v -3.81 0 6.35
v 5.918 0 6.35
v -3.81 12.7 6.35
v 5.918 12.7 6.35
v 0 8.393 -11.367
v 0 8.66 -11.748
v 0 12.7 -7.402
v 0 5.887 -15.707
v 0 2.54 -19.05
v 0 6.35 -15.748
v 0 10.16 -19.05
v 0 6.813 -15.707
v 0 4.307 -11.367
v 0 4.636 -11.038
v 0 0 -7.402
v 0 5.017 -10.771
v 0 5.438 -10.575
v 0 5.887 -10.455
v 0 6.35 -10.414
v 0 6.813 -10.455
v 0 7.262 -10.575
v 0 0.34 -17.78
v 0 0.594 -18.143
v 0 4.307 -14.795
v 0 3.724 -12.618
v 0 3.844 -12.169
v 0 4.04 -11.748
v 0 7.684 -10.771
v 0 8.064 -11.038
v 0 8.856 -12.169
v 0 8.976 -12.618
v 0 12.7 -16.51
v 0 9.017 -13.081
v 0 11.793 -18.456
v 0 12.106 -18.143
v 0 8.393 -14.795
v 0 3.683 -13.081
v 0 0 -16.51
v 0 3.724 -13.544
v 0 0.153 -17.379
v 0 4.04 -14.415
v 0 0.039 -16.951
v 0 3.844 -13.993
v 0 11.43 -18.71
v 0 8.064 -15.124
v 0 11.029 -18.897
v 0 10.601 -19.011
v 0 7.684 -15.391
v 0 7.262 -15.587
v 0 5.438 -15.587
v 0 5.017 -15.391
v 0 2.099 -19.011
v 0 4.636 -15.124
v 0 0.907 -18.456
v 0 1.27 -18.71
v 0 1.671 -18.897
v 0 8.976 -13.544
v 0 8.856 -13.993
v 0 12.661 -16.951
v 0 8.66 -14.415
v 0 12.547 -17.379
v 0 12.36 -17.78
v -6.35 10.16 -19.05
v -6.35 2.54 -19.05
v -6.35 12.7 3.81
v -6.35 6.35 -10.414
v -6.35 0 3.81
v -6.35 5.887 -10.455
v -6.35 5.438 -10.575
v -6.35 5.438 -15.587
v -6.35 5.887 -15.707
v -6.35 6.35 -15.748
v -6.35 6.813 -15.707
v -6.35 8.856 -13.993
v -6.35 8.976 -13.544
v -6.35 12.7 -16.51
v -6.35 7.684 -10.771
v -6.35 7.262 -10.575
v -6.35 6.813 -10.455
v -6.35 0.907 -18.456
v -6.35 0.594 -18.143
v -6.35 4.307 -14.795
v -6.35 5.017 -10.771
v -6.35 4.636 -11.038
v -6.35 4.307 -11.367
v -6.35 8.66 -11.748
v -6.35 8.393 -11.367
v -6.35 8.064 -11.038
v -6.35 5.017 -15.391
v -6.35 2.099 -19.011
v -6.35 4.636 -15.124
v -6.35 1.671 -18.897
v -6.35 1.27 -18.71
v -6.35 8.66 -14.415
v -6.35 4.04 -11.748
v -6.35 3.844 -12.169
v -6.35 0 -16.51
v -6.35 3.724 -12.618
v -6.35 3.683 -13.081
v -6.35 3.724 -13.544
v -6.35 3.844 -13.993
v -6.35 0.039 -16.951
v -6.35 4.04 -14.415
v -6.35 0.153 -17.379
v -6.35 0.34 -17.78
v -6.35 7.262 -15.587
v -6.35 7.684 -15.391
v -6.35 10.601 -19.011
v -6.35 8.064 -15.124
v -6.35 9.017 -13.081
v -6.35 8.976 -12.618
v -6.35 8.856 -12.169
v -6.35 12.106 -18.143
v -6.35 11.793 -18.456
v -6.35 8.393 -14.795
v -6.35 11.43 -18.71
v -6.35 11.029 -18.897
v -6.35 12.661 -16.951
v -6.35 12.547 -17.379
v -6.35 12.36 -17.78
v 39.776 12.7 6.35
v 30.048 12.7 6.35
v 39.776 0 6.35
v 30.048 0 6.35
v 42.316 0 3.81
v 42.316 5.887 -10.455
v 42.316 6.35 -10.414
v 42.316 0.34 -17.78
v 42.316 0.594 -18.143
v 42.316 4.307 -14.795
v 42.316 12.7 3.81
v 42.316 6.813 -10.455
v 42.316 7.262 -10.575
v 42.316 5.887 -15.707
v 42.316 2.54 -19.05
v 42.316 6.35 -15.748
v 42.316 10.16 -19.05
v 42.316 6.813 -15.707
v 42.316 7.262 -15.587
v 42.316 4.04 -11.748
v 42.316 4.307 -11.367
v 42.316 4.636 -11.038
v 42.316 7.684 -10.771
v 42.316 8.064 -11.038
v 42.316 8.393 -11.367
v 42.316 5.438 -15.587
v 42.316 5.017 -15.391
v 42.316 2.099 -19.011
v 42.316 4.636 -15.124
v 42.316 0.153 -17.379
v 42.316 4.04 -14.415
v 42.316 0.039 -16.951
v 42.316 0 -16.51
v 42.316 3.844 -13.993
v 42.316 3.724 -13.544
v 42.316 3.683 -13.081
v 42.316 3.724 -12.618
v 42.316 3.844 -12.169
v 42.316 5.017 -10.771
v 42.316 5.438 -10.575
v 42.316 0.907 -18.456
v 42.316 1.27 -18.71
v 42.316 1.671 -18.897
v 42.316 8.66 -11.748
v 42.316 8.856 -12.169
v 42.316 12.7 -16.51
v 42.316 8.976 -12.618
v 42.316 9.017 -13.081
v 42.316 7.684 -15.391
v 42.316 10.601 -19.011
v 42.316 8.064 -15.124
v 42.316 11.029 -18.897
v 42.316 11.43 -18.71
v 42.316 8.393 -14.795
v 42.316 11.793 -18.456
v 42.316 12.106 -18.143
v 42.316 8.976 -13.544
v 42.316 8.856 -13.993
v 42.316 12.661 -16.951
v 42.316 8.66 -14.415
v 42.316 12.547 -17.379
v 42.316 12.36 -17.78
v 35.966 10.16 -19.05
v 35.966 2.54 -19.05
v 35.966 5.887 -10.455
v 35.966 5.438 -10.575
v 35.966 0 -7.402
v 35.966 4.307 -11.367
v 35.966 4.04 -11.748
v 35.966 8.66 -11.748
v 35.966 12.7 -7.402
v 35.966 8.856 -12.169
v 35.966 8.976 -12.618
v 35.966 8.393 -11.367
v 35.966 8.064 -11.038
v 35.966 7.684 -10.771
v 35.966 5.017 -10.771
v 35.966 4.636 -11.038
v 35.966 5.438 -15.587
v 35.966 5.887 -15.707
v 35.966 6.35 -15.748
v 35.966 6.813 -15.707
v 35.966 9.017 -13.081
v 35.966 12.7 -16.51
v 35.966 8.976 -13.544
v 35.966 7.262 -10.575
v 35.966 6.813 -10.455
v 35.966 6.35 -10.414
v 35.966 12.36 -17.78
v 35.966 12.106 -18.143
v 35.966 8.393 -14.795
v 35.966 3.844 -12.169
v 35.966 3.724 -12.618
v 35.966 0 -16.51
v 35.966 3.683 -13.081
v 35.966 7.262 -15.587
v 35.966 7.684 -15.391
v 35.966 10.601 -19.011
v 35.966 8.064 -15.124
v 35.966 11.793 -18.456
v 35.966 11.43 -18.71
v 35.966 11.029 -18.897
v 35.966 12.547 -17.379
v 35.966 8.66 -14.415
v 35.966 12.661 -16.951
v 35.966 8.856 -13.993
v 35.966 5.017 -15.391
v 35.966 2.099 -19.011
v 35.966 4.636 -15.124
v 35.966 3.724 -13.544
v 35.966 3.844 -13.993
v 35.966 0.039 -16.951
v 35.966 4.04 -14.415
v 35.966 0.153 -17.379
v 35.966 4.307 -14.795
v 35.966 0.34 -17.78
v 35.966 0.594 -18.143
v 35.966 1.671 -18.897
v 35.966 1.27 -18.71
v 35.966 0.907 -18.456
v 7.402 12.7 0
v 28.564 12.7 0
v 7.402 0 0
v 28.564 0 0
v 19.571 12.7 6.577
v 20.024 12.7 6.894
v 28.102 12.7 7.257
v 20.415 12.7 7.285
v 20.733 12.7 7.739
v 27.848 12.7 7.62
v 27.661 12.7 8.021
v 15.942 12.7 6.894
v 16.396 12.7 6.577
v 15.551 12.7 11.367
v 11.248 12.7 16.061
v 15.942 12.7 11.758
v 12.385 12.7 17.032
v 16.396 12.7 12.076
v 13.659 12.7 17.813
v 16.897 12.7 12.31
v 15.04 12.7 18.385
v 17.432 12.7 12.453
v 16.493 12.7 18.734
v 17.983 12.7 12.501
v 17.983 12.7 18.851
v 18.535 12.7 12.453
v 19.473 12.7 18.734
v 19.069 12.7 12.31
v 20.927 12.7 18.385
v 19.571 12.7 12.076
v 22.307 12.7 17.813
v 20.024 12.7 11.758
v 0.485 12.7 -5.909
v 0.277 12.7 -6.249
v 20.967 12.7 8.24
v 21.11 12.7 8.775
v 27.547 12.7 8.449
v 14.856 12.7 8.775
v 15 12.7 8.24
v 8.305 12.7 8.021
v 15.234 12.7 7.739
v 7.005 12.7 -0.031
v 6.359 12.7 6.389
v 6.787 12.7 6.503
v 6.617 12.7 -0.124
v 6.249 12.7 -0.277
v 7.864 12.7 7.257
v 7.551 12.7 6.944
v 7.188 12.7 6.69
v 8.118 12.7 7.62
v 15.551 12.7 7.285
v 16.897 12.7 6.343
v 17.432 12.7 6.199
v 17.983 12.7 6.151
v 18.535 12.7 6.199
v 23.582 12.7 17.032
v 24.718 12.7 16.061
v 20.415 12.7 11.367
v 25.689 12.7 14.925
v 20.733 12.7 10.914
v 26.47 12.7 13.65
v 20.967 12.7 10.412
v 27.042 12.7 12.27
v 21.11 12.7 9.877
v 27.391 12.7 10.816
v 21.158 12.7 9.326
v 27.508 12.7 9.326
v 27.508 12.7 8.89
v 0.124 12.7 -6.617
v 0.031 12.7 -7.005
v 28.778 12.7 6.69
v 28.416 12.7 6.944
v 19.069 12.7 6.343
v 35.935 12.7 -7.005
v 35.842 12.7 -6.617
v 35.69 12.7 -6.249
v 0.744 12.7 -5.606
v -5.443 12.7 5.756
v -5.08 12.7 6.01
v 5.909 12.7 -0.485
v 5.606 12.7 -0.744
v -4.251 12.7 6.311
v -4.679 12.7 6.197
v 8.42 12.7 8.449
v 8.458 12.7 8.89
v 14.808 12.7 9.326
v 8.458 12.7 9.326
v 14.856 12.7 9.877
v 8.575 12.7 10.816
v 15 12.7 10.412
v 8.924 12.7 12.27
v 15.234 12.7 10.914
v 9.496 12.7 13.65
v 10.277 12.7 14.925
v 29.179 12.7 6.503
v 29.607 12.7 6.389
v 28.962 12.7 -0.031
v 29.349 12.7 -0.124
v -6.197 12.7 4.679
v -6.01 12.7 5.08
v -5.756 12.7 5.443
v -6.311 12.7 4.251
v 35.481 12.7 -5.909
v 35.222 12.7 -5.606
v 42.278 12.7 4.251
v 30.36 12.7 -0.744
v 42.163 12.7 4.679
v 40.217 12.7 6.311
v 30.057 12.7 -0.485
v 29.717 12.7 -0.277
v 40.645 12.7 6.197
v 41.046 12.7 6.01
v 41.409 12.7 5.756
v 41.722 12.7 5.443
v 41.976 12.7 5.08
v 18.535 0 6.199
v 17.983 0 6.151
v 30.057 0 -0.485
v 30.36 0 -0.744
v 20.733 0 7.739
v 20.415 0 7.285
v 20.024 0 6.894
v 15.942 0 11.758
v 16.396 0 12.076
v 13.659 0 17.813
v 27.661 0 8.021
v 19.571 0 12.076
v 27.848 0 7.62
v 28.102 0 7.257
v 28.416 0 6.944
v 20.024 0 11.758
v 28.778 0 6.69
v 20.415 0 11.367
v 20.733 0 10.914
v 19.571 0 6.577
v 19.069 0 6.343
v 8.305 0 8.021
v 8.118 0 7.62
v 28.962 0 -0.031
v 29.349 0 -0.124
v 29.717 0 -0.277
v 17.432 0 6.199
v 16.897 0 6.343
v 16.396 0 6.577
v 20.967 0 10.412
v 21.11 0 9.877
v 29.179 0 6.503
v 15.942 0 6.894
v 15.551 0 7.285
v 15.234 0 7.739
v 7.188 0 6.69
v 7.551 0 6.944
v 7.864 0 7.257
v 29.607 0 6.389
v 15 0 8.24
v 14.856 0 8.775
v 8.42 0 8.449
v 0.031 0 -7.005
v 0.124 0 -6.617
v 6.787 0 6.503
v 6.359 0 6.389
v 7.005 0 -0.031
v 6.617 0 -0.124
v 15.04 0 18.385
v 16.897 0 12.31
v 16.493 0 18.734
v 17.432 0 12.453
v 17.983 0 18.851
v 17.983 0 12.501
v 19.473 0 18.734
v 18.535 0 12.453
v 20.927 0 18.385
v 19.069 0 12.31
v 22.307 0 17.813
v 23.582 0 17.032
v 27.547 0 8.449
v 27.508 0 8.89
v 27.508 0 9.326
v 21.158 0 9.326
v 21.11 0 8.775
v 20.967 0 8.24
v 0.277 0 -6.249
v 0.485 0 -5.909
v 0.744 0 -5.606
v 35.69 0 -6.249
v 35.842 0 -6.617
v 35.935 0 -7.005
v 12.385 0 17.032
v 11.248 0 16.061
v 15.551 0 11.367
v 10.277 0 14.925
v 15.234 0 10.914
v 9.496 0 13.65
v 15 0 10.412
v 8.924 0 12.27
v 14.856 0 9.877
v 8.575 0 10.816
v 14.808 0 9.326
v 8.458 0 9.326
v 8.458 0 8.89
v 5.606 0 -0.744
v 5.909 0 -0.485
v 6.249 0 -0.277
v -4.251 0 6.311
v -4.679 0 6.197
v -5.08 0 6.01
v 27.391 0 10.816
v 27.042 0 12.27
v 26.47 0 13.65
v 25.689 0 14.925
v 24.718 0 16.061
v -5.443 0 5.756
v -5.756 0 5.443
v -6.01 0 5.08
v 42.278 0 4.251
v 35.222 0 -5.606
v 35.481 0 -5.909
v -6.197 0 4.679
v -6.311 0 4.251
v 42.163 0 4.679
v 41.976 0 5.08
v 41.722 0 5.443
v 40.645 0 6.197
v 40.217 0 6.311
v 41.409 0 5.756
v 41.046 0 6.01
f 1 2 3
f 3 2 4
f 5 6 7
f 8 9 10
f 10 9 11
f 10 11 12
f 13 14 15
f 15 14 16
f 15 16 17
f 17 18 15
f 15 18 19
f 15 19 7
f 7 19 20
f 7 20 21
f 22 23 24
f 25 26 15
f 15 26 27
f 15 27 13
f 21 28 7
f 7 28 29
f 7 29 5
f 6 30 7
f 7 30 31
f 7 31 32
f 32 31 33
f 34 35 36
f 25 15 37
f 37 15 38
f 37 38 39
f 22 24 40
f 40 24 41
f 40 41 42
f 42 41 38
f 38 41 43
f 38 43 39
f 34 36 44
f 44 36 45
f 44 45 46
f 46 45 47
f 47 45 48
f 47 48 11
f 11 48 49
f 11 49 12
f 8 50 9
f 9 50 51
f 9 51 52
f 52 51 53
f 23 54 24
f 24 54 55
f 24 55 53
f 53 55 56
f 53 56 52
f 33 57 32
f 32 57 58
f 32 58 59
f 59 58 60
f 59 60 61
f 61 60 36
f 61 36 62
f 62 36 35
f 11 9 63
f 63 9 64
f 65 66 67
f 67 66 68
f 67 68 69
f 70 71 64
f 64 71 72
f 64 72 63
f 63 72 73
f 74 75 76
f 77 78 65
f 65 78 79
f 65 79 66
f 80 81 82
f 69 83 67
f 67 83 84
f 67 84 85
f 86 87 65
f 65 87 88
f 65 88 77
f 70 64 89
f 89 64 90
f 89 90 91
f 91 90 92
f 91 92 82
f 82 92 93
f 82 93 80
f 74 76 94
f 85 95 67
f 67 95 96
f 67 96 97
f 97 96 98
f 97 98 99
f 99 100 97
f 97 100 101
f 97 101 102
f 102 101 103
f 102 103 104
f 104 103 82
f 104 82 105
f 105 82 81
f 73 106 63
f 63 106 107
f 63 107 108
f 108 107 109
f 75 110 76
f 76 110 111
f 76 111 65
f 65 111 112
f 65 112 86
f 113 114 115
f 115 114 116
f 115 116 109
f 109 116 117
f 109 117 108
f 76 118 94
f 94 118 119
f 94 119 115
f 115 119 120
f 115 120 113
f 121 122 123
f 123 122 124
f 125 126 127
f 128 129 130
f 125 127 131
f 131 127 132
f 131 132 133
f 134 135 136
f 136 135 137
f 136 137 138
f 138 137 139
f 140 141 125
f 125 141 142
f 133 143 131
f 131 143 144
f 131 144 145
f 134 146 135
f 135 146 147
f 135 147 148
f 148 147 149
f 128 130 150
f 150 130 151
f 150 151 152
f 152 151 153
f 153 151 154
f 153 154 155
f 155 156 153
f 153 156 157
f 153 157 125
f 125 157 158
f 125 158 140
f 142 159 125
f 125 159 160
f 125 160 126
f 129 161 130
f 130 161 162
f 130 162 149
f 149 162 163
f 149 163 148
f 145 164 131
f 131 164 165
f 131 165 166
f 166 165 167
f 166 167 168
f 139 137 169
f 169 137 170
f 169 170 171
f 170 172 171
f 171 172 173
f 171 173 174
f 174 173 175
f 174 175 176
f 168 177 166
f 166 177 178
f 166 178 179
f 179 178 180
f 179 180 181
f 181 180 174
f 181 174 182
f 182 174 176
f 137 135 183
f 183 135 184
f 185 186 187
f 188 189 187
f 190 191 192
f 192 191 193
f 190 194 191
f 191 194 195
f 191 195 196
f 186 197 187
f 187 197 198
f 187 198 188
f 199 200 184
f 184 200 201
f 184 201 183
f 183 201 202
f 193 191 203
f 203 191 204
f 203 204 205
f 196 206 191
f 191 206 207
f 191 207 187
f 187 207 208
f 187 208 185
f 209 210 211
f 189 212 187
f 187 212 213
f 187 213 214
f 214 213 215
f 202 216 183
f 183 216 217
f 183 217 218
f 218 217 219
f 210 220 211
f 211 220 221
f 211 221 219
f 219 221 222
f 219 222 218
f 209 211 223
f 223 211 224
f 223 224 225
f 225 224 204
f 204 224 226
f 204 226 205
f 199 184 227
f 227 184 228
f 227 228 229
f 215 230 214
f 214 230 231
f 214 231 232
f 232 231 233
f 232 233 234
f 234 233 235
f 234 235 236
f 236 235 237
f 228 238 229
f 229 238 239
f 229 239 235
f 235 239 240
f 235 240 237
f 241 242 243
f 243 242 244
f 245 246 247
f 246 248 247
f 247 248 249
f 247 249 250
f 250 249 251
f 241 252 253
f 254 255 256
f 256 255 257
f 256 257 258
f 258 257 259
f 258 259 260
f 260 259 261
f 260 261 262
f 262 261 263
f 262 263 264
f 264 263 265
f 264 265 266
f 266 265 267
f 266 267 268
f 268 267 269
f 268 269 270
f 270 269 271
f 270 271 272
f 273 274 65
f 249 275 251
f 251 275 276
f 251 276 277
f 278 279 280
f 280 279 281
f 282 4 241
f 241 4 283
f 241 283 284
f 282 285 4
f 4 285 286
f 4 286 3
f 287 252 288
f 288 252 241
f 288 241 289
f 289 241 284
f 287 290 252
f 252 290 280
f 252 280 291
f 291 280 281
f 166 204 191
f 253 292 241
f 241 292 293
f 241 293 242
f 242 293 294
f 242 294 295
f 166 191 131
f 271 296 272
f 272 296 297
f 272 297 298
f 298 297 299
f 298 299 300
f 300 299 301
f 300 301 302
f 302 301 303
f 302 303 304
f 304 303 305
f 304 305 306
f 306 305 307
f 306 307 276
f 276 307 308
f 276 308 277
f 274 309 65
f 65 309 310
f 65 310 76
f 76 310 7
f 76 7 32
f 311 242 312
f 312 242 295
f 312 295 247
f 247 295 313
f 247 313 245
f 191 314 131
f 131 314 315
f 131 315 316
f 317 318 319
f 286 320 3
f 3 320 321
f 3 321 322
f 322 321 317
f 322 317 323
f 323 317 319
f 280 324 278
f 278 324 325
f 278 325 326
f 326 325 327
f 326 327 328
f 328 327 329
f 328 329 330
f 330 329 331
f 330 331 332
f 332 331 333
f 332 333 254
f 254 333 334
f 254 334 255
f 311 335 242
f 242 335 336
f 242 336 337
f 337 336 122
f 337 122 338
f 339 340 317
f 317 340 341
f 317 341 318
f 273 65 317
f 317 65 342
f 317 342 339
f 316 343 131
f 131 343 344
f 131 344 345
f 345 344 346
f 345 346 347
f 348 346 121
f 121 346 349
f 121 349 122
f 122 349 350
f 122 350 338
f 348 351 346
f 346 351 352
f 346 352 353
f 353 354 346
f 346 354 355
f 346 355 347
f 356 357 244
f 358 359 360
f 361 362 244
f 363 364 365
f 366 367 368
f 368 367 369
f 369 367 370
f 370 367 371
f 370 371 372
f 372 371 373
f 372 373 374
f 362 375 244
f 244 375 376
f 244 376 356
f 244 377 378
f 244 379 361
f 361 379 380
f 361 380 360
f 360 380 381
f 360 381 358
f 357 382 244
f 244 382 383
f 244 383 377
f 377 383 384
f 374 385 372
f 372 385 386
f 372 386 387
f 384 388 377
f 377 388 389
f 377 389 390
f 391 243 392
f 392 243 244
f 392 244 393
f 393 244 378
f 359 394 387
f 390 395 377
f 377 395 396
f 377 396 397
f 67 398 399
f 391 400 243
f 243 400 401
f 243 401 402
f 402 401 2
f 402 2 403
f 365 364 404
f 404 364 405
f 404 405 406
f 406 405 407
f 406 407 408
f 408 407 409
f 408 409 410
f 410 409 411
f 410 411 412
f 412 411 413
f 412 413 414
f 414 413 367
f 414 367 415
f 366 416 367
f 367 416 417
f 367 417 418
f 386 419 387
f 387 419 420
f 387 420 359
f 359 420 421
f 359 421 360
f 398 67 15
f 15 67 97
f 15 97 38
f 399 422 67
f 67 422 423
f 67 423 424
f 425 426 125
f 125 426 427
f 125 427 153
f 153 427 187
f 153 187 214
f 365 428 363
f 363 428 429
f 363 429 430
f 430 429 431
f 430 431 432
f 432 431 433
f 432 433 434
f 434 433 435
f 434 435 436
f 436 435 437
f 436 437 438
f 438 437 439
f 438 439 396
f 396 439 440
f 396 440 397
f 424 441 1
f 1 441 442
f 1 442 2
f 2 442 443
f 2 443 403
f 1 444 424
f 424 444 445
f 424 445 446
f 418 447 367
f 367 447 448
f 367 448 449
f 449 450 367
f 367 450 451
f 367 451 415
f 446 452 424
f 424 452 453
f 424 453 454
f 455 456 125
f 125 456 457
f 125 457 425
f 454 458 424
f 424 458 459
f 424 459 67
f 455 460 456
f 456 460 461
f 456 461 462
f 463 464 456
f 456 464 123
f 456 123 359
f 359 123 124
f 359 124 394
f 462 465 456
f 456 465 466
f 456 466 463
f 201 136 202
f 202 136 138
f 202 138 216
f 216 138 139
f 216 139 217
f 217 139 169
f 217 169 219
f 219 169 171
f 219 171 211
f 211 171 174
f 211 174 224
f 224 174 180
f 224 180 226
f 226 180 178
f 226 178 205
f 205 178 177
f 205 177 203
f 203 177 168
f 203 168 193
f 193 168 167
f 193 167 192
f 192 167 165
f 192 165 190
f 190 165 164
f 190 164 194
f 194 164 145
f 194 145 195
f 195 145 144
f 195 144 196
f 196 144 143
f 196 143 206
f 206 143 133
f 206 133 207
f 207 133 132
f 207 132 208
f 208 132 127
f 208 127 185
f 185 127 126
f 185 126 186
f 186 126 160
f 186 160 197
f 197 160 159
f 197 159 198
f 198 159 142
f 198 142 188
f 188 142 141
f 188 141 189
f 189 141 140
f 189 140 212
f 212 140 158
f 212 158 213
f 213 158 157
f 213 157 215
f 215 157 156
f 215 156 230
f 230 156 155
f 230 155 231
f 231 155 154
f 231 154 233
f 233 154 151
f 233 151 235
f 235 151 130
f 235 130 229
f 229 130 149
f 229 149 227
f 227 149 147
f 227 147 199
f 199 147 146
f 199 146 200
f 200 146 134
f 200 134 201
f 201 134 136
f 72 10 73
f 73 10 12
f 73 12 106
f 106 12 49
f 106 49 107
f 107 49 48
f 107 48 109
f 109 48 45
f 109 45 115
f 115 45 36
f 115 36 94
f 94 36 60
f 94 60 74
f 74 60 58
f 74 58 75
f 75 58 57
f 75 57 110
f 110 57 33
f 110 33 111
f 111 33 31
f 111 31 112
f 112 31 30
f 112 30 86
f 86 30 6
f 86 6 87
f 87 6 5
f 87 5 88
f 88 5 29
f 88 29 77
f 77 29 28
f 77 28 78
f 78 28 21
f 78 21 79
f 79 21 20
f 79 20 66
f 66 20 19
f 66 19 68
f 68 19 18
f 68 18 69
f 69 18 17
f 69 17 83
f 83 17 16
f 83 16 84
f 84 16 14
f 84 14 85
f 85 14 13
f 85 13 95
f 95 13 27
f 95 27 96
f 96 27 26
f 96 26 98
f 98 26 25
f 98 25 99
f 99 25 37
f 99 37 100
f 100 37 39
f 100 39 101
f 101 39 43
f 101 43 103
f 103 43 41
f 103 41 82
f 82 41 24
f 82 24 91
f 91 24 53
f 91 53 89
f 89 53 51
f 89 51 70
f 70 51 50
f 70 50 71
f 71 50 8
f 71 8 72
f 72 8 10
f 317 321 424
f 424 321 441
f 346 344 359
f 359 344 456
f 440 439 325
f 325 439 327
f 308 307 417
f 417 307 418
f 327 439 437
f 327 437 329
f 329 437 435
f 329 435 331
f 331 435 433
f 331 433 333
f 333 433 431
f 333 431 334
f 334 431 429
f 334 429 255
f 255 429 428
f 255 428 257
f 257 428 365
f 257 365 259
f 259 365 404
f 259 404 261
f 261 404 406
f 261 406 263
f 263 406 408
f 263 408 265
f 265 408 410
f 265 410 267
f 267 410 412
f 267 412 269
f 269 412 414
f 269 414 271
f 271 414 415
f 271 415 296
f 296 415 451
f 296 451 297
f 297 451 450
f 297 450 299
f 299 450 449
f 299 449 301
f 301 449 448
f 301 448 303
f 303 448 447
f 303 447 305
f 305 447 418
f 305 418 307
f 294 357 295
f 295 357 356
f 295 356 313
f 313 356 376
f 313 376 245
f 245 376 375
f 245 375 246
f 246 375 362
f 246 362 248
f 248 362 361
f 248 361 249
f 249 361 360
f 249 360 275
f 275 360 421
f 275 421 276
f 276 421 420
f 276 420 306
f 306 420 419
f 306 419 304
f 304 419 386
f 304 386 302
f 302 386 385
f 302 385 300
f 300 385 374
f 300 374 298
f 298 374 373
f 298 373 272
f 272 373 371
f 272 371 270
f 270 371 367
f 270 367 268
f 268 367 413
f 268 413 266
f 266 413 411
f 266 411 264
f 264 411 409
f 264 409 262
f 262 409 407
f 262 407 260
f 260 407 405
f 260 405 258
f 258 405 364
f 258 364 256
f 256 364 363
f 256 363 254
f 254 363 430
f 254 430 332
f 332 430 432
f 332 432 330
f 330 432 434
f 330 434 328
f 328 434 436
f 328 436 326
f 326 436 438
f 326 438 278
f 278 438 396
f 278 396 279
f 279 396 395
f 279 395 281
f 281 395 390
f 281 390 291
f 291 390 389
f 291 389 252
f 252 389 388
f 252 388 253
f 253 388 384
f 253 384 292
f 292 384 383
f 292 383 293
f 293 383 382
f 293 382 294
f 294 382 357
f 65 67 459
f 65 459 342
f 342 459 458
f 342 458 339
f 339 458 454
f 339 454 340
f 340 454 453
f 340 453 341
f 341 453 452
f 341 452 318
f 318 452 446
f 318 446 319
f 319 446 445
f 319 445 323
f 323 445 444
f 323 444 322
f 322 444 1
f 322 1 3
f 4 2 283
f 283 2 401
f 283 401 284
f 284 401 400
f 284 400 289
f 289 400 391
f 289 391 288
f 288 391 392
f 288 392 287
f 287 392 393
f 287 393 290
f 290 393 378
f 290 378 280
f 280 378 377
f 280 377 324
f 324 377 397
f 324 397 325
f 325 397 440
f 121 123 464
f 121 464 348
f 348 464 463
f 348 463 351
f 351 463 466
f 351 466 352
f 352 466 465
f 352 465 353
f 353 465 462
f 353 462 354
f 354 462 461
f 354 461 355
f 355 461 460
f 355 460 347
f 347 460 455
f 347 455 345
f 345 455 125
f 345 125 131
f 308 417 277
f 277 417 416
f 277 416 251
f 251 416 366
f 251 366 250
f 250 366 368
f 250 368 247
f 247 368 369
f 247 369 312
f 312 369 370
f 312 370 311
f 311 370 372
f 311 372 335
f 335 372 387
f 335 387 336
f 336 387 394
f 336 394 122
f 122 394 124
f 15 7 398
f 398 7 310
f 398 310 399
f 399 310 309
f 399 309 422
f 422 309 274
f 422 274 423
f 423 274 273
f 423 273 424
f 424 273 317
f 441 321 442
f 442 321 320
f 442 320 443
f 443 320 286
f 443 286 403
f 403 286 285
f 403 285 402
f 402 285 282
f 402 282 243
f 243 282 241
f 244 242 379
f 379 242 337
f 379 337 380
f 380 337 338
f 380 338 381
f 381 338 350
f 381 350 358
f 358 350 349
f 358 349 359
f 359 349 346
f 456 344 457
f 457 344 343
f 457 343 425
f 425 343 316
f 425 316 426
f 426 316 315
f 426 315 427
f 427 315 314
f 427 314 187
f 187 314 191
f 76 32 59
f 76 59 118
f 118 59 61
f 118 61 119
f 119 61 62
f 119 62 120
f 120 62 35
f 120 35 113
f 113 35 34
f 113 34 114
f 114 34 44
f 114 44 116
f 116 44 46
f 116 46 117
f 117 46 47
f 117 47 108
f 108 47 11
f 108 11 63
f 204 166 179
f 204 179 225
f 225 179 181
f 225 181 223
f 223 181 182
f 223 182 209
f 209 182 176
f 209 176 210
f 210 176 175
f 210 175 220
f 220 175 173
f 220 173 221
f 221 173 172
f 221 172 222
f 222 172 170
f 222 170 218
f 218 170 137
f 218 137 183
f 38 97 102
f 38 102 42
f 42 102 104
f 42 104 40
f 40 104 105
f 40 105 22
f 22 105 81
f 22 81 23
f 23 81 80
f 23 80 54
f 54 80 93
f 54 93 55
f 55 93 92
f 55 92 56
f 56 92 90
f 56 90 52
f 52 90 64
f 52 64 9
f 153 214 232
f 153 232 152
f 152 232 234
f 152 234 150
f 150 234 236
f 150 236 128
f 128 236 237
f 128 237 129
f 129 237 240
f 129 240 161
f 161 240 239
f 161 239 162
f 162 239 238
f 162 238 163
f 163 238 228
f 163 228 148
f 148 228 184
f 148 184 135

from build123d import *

# Parameters (mm, degrees)
BOSS_EXTRUDE1_DEPTH = 12.7
SKETCH2_R           = 2.667
CUT_EXTRUDE1_DEPTH  = 49.6664
BOSS_EXTRUDE3_DEPTH = 12.7
BOSS_EXTRUDE4_DEPTH = 12.7
CUT_EXTRUDE2_REACH  = 14.7
SKETCH5_R           = 3.175
FILLET1_R           = 2.54
RR_R                = 2.54
FILLET3_R           = 2.54


with BuildPart() as part:
    # Sketch1 → Boss-Extrude1 (new body)
    with BuildSketch(Plane(origin=(0, 0, 0), x_dir=(1, 0, 0), z_dir=(0, 1, 0))):
        Polygon((-6.35, -6.35), (-6.35, 19.05), (0, 19.05), (0, 0), (35.9664, 0), (35.9664, 19.05), (42.3164, 19.05), (42.3164, -6.35), align=None)
    extrude(amount=BOSS_EXTRUDE1_DEPTH)

    # Sketch2 → Cut-Extrude1 (cut, through all)
    with BuildSketch(Plane(origin=(42.3164, 0, 0), x_dir=(0, 0, -1), z_dir=(1, 0, 0))):
        with Locations((13.081, 6.35)):
            Circle(SKETCH2_R)
    extrude(amount=-CUT_EXTRUDE1_DEPTH, mode=Mode.SUBTRACT)

    # Sketch3 → Boss-Extrude3 (add)
    with BuildSketch(Plane(origin=(0, 12.7, 0), x_dir=(1, 0, 0), z_dir=(0, 1, 0))):
        Polygon((0, 0), (6.35, 0), (0, 6.35), align=None)
        Polygon((35.9664, 6.35), (29.6164, 0), (35.9664, 0), align=None)
    extrude(amount=-BOSS_EXTRUDE3_DEPTH)

    # Sketch4 → Boss-Extrude4 (add)
    with BuildSketch(Plane.XZ):
        with BuildLine():
            Line((27.5082, 9.32613509), (27.5082, 6.35))
            Line((27.5082, 6.35), (8.4582, 6.35))
            Line((8.4582, 6.35), (8.4582, 9.32613509))
            ThreePointArc((8.4582, 9.32613509), (17.9832, 18.85113509), (27.5082, 9.32613509))
        make_face()
    extrude(amount=-BOSS_EXTRUDE4_DEPTH)

    # Sketch5 → Cut-Extrude2 (cut, up to next)
    with BuildSketch(Plane.XZ, mode=Mode.PRIVATE) as cut_extrude2_sk1:
        with Locations((17.9832, 9.32613509)):
            Circle(SKETCH5_R)
    cut_extrude2_tool1 = extrude(cut_extrude2_sk1.sketch, amount=-CUT_EXTRUDE2_REACH, mode=Mode.PRIVATE) & part.part
    add(cut_extrude2_tool1.solids().sort_by_distance((17.9832, 0, 9.326135))[0], mode=Mode.SUBTRACT)

    # Fillet1
    fillet1_edges = [part.edges().sort_by_distance(p)[0] for p in [
        (42.3164, 6.35, 6.35),
        (-6.35, 6.35, 6.35),
        (8.4582, 6.35, 6.35),
        (27.5082, 6.35, 6.35),
    ]]
    fillet(fillet1_edges, radius=FILLET1_R)

    # rr
    rr_edges = [part.edges().sort_by_distance(p)[0] for p in [
        (0, 6.35, -6.35),
        (6.35, 6.35, 0),
        (35.9664, 6.35, -6.35),
        (29.6164, 6.35, 0),
    ]]
    fillet(rr_edges, radius=RR_R)

    # Fillet3
    fillet3_edges = [part.edges().sort_by_distance(p)[0] for p in [
        (-3.175, 0, -19.05),
        (39.1414, 12.7, -19.05),
        (-3.175, 12.7, -19.05),
        (39.1414, 0, -19.05),
    ]]
    fillet(fillet3_edges, radius=FILLET3_R)


solid = part.part
